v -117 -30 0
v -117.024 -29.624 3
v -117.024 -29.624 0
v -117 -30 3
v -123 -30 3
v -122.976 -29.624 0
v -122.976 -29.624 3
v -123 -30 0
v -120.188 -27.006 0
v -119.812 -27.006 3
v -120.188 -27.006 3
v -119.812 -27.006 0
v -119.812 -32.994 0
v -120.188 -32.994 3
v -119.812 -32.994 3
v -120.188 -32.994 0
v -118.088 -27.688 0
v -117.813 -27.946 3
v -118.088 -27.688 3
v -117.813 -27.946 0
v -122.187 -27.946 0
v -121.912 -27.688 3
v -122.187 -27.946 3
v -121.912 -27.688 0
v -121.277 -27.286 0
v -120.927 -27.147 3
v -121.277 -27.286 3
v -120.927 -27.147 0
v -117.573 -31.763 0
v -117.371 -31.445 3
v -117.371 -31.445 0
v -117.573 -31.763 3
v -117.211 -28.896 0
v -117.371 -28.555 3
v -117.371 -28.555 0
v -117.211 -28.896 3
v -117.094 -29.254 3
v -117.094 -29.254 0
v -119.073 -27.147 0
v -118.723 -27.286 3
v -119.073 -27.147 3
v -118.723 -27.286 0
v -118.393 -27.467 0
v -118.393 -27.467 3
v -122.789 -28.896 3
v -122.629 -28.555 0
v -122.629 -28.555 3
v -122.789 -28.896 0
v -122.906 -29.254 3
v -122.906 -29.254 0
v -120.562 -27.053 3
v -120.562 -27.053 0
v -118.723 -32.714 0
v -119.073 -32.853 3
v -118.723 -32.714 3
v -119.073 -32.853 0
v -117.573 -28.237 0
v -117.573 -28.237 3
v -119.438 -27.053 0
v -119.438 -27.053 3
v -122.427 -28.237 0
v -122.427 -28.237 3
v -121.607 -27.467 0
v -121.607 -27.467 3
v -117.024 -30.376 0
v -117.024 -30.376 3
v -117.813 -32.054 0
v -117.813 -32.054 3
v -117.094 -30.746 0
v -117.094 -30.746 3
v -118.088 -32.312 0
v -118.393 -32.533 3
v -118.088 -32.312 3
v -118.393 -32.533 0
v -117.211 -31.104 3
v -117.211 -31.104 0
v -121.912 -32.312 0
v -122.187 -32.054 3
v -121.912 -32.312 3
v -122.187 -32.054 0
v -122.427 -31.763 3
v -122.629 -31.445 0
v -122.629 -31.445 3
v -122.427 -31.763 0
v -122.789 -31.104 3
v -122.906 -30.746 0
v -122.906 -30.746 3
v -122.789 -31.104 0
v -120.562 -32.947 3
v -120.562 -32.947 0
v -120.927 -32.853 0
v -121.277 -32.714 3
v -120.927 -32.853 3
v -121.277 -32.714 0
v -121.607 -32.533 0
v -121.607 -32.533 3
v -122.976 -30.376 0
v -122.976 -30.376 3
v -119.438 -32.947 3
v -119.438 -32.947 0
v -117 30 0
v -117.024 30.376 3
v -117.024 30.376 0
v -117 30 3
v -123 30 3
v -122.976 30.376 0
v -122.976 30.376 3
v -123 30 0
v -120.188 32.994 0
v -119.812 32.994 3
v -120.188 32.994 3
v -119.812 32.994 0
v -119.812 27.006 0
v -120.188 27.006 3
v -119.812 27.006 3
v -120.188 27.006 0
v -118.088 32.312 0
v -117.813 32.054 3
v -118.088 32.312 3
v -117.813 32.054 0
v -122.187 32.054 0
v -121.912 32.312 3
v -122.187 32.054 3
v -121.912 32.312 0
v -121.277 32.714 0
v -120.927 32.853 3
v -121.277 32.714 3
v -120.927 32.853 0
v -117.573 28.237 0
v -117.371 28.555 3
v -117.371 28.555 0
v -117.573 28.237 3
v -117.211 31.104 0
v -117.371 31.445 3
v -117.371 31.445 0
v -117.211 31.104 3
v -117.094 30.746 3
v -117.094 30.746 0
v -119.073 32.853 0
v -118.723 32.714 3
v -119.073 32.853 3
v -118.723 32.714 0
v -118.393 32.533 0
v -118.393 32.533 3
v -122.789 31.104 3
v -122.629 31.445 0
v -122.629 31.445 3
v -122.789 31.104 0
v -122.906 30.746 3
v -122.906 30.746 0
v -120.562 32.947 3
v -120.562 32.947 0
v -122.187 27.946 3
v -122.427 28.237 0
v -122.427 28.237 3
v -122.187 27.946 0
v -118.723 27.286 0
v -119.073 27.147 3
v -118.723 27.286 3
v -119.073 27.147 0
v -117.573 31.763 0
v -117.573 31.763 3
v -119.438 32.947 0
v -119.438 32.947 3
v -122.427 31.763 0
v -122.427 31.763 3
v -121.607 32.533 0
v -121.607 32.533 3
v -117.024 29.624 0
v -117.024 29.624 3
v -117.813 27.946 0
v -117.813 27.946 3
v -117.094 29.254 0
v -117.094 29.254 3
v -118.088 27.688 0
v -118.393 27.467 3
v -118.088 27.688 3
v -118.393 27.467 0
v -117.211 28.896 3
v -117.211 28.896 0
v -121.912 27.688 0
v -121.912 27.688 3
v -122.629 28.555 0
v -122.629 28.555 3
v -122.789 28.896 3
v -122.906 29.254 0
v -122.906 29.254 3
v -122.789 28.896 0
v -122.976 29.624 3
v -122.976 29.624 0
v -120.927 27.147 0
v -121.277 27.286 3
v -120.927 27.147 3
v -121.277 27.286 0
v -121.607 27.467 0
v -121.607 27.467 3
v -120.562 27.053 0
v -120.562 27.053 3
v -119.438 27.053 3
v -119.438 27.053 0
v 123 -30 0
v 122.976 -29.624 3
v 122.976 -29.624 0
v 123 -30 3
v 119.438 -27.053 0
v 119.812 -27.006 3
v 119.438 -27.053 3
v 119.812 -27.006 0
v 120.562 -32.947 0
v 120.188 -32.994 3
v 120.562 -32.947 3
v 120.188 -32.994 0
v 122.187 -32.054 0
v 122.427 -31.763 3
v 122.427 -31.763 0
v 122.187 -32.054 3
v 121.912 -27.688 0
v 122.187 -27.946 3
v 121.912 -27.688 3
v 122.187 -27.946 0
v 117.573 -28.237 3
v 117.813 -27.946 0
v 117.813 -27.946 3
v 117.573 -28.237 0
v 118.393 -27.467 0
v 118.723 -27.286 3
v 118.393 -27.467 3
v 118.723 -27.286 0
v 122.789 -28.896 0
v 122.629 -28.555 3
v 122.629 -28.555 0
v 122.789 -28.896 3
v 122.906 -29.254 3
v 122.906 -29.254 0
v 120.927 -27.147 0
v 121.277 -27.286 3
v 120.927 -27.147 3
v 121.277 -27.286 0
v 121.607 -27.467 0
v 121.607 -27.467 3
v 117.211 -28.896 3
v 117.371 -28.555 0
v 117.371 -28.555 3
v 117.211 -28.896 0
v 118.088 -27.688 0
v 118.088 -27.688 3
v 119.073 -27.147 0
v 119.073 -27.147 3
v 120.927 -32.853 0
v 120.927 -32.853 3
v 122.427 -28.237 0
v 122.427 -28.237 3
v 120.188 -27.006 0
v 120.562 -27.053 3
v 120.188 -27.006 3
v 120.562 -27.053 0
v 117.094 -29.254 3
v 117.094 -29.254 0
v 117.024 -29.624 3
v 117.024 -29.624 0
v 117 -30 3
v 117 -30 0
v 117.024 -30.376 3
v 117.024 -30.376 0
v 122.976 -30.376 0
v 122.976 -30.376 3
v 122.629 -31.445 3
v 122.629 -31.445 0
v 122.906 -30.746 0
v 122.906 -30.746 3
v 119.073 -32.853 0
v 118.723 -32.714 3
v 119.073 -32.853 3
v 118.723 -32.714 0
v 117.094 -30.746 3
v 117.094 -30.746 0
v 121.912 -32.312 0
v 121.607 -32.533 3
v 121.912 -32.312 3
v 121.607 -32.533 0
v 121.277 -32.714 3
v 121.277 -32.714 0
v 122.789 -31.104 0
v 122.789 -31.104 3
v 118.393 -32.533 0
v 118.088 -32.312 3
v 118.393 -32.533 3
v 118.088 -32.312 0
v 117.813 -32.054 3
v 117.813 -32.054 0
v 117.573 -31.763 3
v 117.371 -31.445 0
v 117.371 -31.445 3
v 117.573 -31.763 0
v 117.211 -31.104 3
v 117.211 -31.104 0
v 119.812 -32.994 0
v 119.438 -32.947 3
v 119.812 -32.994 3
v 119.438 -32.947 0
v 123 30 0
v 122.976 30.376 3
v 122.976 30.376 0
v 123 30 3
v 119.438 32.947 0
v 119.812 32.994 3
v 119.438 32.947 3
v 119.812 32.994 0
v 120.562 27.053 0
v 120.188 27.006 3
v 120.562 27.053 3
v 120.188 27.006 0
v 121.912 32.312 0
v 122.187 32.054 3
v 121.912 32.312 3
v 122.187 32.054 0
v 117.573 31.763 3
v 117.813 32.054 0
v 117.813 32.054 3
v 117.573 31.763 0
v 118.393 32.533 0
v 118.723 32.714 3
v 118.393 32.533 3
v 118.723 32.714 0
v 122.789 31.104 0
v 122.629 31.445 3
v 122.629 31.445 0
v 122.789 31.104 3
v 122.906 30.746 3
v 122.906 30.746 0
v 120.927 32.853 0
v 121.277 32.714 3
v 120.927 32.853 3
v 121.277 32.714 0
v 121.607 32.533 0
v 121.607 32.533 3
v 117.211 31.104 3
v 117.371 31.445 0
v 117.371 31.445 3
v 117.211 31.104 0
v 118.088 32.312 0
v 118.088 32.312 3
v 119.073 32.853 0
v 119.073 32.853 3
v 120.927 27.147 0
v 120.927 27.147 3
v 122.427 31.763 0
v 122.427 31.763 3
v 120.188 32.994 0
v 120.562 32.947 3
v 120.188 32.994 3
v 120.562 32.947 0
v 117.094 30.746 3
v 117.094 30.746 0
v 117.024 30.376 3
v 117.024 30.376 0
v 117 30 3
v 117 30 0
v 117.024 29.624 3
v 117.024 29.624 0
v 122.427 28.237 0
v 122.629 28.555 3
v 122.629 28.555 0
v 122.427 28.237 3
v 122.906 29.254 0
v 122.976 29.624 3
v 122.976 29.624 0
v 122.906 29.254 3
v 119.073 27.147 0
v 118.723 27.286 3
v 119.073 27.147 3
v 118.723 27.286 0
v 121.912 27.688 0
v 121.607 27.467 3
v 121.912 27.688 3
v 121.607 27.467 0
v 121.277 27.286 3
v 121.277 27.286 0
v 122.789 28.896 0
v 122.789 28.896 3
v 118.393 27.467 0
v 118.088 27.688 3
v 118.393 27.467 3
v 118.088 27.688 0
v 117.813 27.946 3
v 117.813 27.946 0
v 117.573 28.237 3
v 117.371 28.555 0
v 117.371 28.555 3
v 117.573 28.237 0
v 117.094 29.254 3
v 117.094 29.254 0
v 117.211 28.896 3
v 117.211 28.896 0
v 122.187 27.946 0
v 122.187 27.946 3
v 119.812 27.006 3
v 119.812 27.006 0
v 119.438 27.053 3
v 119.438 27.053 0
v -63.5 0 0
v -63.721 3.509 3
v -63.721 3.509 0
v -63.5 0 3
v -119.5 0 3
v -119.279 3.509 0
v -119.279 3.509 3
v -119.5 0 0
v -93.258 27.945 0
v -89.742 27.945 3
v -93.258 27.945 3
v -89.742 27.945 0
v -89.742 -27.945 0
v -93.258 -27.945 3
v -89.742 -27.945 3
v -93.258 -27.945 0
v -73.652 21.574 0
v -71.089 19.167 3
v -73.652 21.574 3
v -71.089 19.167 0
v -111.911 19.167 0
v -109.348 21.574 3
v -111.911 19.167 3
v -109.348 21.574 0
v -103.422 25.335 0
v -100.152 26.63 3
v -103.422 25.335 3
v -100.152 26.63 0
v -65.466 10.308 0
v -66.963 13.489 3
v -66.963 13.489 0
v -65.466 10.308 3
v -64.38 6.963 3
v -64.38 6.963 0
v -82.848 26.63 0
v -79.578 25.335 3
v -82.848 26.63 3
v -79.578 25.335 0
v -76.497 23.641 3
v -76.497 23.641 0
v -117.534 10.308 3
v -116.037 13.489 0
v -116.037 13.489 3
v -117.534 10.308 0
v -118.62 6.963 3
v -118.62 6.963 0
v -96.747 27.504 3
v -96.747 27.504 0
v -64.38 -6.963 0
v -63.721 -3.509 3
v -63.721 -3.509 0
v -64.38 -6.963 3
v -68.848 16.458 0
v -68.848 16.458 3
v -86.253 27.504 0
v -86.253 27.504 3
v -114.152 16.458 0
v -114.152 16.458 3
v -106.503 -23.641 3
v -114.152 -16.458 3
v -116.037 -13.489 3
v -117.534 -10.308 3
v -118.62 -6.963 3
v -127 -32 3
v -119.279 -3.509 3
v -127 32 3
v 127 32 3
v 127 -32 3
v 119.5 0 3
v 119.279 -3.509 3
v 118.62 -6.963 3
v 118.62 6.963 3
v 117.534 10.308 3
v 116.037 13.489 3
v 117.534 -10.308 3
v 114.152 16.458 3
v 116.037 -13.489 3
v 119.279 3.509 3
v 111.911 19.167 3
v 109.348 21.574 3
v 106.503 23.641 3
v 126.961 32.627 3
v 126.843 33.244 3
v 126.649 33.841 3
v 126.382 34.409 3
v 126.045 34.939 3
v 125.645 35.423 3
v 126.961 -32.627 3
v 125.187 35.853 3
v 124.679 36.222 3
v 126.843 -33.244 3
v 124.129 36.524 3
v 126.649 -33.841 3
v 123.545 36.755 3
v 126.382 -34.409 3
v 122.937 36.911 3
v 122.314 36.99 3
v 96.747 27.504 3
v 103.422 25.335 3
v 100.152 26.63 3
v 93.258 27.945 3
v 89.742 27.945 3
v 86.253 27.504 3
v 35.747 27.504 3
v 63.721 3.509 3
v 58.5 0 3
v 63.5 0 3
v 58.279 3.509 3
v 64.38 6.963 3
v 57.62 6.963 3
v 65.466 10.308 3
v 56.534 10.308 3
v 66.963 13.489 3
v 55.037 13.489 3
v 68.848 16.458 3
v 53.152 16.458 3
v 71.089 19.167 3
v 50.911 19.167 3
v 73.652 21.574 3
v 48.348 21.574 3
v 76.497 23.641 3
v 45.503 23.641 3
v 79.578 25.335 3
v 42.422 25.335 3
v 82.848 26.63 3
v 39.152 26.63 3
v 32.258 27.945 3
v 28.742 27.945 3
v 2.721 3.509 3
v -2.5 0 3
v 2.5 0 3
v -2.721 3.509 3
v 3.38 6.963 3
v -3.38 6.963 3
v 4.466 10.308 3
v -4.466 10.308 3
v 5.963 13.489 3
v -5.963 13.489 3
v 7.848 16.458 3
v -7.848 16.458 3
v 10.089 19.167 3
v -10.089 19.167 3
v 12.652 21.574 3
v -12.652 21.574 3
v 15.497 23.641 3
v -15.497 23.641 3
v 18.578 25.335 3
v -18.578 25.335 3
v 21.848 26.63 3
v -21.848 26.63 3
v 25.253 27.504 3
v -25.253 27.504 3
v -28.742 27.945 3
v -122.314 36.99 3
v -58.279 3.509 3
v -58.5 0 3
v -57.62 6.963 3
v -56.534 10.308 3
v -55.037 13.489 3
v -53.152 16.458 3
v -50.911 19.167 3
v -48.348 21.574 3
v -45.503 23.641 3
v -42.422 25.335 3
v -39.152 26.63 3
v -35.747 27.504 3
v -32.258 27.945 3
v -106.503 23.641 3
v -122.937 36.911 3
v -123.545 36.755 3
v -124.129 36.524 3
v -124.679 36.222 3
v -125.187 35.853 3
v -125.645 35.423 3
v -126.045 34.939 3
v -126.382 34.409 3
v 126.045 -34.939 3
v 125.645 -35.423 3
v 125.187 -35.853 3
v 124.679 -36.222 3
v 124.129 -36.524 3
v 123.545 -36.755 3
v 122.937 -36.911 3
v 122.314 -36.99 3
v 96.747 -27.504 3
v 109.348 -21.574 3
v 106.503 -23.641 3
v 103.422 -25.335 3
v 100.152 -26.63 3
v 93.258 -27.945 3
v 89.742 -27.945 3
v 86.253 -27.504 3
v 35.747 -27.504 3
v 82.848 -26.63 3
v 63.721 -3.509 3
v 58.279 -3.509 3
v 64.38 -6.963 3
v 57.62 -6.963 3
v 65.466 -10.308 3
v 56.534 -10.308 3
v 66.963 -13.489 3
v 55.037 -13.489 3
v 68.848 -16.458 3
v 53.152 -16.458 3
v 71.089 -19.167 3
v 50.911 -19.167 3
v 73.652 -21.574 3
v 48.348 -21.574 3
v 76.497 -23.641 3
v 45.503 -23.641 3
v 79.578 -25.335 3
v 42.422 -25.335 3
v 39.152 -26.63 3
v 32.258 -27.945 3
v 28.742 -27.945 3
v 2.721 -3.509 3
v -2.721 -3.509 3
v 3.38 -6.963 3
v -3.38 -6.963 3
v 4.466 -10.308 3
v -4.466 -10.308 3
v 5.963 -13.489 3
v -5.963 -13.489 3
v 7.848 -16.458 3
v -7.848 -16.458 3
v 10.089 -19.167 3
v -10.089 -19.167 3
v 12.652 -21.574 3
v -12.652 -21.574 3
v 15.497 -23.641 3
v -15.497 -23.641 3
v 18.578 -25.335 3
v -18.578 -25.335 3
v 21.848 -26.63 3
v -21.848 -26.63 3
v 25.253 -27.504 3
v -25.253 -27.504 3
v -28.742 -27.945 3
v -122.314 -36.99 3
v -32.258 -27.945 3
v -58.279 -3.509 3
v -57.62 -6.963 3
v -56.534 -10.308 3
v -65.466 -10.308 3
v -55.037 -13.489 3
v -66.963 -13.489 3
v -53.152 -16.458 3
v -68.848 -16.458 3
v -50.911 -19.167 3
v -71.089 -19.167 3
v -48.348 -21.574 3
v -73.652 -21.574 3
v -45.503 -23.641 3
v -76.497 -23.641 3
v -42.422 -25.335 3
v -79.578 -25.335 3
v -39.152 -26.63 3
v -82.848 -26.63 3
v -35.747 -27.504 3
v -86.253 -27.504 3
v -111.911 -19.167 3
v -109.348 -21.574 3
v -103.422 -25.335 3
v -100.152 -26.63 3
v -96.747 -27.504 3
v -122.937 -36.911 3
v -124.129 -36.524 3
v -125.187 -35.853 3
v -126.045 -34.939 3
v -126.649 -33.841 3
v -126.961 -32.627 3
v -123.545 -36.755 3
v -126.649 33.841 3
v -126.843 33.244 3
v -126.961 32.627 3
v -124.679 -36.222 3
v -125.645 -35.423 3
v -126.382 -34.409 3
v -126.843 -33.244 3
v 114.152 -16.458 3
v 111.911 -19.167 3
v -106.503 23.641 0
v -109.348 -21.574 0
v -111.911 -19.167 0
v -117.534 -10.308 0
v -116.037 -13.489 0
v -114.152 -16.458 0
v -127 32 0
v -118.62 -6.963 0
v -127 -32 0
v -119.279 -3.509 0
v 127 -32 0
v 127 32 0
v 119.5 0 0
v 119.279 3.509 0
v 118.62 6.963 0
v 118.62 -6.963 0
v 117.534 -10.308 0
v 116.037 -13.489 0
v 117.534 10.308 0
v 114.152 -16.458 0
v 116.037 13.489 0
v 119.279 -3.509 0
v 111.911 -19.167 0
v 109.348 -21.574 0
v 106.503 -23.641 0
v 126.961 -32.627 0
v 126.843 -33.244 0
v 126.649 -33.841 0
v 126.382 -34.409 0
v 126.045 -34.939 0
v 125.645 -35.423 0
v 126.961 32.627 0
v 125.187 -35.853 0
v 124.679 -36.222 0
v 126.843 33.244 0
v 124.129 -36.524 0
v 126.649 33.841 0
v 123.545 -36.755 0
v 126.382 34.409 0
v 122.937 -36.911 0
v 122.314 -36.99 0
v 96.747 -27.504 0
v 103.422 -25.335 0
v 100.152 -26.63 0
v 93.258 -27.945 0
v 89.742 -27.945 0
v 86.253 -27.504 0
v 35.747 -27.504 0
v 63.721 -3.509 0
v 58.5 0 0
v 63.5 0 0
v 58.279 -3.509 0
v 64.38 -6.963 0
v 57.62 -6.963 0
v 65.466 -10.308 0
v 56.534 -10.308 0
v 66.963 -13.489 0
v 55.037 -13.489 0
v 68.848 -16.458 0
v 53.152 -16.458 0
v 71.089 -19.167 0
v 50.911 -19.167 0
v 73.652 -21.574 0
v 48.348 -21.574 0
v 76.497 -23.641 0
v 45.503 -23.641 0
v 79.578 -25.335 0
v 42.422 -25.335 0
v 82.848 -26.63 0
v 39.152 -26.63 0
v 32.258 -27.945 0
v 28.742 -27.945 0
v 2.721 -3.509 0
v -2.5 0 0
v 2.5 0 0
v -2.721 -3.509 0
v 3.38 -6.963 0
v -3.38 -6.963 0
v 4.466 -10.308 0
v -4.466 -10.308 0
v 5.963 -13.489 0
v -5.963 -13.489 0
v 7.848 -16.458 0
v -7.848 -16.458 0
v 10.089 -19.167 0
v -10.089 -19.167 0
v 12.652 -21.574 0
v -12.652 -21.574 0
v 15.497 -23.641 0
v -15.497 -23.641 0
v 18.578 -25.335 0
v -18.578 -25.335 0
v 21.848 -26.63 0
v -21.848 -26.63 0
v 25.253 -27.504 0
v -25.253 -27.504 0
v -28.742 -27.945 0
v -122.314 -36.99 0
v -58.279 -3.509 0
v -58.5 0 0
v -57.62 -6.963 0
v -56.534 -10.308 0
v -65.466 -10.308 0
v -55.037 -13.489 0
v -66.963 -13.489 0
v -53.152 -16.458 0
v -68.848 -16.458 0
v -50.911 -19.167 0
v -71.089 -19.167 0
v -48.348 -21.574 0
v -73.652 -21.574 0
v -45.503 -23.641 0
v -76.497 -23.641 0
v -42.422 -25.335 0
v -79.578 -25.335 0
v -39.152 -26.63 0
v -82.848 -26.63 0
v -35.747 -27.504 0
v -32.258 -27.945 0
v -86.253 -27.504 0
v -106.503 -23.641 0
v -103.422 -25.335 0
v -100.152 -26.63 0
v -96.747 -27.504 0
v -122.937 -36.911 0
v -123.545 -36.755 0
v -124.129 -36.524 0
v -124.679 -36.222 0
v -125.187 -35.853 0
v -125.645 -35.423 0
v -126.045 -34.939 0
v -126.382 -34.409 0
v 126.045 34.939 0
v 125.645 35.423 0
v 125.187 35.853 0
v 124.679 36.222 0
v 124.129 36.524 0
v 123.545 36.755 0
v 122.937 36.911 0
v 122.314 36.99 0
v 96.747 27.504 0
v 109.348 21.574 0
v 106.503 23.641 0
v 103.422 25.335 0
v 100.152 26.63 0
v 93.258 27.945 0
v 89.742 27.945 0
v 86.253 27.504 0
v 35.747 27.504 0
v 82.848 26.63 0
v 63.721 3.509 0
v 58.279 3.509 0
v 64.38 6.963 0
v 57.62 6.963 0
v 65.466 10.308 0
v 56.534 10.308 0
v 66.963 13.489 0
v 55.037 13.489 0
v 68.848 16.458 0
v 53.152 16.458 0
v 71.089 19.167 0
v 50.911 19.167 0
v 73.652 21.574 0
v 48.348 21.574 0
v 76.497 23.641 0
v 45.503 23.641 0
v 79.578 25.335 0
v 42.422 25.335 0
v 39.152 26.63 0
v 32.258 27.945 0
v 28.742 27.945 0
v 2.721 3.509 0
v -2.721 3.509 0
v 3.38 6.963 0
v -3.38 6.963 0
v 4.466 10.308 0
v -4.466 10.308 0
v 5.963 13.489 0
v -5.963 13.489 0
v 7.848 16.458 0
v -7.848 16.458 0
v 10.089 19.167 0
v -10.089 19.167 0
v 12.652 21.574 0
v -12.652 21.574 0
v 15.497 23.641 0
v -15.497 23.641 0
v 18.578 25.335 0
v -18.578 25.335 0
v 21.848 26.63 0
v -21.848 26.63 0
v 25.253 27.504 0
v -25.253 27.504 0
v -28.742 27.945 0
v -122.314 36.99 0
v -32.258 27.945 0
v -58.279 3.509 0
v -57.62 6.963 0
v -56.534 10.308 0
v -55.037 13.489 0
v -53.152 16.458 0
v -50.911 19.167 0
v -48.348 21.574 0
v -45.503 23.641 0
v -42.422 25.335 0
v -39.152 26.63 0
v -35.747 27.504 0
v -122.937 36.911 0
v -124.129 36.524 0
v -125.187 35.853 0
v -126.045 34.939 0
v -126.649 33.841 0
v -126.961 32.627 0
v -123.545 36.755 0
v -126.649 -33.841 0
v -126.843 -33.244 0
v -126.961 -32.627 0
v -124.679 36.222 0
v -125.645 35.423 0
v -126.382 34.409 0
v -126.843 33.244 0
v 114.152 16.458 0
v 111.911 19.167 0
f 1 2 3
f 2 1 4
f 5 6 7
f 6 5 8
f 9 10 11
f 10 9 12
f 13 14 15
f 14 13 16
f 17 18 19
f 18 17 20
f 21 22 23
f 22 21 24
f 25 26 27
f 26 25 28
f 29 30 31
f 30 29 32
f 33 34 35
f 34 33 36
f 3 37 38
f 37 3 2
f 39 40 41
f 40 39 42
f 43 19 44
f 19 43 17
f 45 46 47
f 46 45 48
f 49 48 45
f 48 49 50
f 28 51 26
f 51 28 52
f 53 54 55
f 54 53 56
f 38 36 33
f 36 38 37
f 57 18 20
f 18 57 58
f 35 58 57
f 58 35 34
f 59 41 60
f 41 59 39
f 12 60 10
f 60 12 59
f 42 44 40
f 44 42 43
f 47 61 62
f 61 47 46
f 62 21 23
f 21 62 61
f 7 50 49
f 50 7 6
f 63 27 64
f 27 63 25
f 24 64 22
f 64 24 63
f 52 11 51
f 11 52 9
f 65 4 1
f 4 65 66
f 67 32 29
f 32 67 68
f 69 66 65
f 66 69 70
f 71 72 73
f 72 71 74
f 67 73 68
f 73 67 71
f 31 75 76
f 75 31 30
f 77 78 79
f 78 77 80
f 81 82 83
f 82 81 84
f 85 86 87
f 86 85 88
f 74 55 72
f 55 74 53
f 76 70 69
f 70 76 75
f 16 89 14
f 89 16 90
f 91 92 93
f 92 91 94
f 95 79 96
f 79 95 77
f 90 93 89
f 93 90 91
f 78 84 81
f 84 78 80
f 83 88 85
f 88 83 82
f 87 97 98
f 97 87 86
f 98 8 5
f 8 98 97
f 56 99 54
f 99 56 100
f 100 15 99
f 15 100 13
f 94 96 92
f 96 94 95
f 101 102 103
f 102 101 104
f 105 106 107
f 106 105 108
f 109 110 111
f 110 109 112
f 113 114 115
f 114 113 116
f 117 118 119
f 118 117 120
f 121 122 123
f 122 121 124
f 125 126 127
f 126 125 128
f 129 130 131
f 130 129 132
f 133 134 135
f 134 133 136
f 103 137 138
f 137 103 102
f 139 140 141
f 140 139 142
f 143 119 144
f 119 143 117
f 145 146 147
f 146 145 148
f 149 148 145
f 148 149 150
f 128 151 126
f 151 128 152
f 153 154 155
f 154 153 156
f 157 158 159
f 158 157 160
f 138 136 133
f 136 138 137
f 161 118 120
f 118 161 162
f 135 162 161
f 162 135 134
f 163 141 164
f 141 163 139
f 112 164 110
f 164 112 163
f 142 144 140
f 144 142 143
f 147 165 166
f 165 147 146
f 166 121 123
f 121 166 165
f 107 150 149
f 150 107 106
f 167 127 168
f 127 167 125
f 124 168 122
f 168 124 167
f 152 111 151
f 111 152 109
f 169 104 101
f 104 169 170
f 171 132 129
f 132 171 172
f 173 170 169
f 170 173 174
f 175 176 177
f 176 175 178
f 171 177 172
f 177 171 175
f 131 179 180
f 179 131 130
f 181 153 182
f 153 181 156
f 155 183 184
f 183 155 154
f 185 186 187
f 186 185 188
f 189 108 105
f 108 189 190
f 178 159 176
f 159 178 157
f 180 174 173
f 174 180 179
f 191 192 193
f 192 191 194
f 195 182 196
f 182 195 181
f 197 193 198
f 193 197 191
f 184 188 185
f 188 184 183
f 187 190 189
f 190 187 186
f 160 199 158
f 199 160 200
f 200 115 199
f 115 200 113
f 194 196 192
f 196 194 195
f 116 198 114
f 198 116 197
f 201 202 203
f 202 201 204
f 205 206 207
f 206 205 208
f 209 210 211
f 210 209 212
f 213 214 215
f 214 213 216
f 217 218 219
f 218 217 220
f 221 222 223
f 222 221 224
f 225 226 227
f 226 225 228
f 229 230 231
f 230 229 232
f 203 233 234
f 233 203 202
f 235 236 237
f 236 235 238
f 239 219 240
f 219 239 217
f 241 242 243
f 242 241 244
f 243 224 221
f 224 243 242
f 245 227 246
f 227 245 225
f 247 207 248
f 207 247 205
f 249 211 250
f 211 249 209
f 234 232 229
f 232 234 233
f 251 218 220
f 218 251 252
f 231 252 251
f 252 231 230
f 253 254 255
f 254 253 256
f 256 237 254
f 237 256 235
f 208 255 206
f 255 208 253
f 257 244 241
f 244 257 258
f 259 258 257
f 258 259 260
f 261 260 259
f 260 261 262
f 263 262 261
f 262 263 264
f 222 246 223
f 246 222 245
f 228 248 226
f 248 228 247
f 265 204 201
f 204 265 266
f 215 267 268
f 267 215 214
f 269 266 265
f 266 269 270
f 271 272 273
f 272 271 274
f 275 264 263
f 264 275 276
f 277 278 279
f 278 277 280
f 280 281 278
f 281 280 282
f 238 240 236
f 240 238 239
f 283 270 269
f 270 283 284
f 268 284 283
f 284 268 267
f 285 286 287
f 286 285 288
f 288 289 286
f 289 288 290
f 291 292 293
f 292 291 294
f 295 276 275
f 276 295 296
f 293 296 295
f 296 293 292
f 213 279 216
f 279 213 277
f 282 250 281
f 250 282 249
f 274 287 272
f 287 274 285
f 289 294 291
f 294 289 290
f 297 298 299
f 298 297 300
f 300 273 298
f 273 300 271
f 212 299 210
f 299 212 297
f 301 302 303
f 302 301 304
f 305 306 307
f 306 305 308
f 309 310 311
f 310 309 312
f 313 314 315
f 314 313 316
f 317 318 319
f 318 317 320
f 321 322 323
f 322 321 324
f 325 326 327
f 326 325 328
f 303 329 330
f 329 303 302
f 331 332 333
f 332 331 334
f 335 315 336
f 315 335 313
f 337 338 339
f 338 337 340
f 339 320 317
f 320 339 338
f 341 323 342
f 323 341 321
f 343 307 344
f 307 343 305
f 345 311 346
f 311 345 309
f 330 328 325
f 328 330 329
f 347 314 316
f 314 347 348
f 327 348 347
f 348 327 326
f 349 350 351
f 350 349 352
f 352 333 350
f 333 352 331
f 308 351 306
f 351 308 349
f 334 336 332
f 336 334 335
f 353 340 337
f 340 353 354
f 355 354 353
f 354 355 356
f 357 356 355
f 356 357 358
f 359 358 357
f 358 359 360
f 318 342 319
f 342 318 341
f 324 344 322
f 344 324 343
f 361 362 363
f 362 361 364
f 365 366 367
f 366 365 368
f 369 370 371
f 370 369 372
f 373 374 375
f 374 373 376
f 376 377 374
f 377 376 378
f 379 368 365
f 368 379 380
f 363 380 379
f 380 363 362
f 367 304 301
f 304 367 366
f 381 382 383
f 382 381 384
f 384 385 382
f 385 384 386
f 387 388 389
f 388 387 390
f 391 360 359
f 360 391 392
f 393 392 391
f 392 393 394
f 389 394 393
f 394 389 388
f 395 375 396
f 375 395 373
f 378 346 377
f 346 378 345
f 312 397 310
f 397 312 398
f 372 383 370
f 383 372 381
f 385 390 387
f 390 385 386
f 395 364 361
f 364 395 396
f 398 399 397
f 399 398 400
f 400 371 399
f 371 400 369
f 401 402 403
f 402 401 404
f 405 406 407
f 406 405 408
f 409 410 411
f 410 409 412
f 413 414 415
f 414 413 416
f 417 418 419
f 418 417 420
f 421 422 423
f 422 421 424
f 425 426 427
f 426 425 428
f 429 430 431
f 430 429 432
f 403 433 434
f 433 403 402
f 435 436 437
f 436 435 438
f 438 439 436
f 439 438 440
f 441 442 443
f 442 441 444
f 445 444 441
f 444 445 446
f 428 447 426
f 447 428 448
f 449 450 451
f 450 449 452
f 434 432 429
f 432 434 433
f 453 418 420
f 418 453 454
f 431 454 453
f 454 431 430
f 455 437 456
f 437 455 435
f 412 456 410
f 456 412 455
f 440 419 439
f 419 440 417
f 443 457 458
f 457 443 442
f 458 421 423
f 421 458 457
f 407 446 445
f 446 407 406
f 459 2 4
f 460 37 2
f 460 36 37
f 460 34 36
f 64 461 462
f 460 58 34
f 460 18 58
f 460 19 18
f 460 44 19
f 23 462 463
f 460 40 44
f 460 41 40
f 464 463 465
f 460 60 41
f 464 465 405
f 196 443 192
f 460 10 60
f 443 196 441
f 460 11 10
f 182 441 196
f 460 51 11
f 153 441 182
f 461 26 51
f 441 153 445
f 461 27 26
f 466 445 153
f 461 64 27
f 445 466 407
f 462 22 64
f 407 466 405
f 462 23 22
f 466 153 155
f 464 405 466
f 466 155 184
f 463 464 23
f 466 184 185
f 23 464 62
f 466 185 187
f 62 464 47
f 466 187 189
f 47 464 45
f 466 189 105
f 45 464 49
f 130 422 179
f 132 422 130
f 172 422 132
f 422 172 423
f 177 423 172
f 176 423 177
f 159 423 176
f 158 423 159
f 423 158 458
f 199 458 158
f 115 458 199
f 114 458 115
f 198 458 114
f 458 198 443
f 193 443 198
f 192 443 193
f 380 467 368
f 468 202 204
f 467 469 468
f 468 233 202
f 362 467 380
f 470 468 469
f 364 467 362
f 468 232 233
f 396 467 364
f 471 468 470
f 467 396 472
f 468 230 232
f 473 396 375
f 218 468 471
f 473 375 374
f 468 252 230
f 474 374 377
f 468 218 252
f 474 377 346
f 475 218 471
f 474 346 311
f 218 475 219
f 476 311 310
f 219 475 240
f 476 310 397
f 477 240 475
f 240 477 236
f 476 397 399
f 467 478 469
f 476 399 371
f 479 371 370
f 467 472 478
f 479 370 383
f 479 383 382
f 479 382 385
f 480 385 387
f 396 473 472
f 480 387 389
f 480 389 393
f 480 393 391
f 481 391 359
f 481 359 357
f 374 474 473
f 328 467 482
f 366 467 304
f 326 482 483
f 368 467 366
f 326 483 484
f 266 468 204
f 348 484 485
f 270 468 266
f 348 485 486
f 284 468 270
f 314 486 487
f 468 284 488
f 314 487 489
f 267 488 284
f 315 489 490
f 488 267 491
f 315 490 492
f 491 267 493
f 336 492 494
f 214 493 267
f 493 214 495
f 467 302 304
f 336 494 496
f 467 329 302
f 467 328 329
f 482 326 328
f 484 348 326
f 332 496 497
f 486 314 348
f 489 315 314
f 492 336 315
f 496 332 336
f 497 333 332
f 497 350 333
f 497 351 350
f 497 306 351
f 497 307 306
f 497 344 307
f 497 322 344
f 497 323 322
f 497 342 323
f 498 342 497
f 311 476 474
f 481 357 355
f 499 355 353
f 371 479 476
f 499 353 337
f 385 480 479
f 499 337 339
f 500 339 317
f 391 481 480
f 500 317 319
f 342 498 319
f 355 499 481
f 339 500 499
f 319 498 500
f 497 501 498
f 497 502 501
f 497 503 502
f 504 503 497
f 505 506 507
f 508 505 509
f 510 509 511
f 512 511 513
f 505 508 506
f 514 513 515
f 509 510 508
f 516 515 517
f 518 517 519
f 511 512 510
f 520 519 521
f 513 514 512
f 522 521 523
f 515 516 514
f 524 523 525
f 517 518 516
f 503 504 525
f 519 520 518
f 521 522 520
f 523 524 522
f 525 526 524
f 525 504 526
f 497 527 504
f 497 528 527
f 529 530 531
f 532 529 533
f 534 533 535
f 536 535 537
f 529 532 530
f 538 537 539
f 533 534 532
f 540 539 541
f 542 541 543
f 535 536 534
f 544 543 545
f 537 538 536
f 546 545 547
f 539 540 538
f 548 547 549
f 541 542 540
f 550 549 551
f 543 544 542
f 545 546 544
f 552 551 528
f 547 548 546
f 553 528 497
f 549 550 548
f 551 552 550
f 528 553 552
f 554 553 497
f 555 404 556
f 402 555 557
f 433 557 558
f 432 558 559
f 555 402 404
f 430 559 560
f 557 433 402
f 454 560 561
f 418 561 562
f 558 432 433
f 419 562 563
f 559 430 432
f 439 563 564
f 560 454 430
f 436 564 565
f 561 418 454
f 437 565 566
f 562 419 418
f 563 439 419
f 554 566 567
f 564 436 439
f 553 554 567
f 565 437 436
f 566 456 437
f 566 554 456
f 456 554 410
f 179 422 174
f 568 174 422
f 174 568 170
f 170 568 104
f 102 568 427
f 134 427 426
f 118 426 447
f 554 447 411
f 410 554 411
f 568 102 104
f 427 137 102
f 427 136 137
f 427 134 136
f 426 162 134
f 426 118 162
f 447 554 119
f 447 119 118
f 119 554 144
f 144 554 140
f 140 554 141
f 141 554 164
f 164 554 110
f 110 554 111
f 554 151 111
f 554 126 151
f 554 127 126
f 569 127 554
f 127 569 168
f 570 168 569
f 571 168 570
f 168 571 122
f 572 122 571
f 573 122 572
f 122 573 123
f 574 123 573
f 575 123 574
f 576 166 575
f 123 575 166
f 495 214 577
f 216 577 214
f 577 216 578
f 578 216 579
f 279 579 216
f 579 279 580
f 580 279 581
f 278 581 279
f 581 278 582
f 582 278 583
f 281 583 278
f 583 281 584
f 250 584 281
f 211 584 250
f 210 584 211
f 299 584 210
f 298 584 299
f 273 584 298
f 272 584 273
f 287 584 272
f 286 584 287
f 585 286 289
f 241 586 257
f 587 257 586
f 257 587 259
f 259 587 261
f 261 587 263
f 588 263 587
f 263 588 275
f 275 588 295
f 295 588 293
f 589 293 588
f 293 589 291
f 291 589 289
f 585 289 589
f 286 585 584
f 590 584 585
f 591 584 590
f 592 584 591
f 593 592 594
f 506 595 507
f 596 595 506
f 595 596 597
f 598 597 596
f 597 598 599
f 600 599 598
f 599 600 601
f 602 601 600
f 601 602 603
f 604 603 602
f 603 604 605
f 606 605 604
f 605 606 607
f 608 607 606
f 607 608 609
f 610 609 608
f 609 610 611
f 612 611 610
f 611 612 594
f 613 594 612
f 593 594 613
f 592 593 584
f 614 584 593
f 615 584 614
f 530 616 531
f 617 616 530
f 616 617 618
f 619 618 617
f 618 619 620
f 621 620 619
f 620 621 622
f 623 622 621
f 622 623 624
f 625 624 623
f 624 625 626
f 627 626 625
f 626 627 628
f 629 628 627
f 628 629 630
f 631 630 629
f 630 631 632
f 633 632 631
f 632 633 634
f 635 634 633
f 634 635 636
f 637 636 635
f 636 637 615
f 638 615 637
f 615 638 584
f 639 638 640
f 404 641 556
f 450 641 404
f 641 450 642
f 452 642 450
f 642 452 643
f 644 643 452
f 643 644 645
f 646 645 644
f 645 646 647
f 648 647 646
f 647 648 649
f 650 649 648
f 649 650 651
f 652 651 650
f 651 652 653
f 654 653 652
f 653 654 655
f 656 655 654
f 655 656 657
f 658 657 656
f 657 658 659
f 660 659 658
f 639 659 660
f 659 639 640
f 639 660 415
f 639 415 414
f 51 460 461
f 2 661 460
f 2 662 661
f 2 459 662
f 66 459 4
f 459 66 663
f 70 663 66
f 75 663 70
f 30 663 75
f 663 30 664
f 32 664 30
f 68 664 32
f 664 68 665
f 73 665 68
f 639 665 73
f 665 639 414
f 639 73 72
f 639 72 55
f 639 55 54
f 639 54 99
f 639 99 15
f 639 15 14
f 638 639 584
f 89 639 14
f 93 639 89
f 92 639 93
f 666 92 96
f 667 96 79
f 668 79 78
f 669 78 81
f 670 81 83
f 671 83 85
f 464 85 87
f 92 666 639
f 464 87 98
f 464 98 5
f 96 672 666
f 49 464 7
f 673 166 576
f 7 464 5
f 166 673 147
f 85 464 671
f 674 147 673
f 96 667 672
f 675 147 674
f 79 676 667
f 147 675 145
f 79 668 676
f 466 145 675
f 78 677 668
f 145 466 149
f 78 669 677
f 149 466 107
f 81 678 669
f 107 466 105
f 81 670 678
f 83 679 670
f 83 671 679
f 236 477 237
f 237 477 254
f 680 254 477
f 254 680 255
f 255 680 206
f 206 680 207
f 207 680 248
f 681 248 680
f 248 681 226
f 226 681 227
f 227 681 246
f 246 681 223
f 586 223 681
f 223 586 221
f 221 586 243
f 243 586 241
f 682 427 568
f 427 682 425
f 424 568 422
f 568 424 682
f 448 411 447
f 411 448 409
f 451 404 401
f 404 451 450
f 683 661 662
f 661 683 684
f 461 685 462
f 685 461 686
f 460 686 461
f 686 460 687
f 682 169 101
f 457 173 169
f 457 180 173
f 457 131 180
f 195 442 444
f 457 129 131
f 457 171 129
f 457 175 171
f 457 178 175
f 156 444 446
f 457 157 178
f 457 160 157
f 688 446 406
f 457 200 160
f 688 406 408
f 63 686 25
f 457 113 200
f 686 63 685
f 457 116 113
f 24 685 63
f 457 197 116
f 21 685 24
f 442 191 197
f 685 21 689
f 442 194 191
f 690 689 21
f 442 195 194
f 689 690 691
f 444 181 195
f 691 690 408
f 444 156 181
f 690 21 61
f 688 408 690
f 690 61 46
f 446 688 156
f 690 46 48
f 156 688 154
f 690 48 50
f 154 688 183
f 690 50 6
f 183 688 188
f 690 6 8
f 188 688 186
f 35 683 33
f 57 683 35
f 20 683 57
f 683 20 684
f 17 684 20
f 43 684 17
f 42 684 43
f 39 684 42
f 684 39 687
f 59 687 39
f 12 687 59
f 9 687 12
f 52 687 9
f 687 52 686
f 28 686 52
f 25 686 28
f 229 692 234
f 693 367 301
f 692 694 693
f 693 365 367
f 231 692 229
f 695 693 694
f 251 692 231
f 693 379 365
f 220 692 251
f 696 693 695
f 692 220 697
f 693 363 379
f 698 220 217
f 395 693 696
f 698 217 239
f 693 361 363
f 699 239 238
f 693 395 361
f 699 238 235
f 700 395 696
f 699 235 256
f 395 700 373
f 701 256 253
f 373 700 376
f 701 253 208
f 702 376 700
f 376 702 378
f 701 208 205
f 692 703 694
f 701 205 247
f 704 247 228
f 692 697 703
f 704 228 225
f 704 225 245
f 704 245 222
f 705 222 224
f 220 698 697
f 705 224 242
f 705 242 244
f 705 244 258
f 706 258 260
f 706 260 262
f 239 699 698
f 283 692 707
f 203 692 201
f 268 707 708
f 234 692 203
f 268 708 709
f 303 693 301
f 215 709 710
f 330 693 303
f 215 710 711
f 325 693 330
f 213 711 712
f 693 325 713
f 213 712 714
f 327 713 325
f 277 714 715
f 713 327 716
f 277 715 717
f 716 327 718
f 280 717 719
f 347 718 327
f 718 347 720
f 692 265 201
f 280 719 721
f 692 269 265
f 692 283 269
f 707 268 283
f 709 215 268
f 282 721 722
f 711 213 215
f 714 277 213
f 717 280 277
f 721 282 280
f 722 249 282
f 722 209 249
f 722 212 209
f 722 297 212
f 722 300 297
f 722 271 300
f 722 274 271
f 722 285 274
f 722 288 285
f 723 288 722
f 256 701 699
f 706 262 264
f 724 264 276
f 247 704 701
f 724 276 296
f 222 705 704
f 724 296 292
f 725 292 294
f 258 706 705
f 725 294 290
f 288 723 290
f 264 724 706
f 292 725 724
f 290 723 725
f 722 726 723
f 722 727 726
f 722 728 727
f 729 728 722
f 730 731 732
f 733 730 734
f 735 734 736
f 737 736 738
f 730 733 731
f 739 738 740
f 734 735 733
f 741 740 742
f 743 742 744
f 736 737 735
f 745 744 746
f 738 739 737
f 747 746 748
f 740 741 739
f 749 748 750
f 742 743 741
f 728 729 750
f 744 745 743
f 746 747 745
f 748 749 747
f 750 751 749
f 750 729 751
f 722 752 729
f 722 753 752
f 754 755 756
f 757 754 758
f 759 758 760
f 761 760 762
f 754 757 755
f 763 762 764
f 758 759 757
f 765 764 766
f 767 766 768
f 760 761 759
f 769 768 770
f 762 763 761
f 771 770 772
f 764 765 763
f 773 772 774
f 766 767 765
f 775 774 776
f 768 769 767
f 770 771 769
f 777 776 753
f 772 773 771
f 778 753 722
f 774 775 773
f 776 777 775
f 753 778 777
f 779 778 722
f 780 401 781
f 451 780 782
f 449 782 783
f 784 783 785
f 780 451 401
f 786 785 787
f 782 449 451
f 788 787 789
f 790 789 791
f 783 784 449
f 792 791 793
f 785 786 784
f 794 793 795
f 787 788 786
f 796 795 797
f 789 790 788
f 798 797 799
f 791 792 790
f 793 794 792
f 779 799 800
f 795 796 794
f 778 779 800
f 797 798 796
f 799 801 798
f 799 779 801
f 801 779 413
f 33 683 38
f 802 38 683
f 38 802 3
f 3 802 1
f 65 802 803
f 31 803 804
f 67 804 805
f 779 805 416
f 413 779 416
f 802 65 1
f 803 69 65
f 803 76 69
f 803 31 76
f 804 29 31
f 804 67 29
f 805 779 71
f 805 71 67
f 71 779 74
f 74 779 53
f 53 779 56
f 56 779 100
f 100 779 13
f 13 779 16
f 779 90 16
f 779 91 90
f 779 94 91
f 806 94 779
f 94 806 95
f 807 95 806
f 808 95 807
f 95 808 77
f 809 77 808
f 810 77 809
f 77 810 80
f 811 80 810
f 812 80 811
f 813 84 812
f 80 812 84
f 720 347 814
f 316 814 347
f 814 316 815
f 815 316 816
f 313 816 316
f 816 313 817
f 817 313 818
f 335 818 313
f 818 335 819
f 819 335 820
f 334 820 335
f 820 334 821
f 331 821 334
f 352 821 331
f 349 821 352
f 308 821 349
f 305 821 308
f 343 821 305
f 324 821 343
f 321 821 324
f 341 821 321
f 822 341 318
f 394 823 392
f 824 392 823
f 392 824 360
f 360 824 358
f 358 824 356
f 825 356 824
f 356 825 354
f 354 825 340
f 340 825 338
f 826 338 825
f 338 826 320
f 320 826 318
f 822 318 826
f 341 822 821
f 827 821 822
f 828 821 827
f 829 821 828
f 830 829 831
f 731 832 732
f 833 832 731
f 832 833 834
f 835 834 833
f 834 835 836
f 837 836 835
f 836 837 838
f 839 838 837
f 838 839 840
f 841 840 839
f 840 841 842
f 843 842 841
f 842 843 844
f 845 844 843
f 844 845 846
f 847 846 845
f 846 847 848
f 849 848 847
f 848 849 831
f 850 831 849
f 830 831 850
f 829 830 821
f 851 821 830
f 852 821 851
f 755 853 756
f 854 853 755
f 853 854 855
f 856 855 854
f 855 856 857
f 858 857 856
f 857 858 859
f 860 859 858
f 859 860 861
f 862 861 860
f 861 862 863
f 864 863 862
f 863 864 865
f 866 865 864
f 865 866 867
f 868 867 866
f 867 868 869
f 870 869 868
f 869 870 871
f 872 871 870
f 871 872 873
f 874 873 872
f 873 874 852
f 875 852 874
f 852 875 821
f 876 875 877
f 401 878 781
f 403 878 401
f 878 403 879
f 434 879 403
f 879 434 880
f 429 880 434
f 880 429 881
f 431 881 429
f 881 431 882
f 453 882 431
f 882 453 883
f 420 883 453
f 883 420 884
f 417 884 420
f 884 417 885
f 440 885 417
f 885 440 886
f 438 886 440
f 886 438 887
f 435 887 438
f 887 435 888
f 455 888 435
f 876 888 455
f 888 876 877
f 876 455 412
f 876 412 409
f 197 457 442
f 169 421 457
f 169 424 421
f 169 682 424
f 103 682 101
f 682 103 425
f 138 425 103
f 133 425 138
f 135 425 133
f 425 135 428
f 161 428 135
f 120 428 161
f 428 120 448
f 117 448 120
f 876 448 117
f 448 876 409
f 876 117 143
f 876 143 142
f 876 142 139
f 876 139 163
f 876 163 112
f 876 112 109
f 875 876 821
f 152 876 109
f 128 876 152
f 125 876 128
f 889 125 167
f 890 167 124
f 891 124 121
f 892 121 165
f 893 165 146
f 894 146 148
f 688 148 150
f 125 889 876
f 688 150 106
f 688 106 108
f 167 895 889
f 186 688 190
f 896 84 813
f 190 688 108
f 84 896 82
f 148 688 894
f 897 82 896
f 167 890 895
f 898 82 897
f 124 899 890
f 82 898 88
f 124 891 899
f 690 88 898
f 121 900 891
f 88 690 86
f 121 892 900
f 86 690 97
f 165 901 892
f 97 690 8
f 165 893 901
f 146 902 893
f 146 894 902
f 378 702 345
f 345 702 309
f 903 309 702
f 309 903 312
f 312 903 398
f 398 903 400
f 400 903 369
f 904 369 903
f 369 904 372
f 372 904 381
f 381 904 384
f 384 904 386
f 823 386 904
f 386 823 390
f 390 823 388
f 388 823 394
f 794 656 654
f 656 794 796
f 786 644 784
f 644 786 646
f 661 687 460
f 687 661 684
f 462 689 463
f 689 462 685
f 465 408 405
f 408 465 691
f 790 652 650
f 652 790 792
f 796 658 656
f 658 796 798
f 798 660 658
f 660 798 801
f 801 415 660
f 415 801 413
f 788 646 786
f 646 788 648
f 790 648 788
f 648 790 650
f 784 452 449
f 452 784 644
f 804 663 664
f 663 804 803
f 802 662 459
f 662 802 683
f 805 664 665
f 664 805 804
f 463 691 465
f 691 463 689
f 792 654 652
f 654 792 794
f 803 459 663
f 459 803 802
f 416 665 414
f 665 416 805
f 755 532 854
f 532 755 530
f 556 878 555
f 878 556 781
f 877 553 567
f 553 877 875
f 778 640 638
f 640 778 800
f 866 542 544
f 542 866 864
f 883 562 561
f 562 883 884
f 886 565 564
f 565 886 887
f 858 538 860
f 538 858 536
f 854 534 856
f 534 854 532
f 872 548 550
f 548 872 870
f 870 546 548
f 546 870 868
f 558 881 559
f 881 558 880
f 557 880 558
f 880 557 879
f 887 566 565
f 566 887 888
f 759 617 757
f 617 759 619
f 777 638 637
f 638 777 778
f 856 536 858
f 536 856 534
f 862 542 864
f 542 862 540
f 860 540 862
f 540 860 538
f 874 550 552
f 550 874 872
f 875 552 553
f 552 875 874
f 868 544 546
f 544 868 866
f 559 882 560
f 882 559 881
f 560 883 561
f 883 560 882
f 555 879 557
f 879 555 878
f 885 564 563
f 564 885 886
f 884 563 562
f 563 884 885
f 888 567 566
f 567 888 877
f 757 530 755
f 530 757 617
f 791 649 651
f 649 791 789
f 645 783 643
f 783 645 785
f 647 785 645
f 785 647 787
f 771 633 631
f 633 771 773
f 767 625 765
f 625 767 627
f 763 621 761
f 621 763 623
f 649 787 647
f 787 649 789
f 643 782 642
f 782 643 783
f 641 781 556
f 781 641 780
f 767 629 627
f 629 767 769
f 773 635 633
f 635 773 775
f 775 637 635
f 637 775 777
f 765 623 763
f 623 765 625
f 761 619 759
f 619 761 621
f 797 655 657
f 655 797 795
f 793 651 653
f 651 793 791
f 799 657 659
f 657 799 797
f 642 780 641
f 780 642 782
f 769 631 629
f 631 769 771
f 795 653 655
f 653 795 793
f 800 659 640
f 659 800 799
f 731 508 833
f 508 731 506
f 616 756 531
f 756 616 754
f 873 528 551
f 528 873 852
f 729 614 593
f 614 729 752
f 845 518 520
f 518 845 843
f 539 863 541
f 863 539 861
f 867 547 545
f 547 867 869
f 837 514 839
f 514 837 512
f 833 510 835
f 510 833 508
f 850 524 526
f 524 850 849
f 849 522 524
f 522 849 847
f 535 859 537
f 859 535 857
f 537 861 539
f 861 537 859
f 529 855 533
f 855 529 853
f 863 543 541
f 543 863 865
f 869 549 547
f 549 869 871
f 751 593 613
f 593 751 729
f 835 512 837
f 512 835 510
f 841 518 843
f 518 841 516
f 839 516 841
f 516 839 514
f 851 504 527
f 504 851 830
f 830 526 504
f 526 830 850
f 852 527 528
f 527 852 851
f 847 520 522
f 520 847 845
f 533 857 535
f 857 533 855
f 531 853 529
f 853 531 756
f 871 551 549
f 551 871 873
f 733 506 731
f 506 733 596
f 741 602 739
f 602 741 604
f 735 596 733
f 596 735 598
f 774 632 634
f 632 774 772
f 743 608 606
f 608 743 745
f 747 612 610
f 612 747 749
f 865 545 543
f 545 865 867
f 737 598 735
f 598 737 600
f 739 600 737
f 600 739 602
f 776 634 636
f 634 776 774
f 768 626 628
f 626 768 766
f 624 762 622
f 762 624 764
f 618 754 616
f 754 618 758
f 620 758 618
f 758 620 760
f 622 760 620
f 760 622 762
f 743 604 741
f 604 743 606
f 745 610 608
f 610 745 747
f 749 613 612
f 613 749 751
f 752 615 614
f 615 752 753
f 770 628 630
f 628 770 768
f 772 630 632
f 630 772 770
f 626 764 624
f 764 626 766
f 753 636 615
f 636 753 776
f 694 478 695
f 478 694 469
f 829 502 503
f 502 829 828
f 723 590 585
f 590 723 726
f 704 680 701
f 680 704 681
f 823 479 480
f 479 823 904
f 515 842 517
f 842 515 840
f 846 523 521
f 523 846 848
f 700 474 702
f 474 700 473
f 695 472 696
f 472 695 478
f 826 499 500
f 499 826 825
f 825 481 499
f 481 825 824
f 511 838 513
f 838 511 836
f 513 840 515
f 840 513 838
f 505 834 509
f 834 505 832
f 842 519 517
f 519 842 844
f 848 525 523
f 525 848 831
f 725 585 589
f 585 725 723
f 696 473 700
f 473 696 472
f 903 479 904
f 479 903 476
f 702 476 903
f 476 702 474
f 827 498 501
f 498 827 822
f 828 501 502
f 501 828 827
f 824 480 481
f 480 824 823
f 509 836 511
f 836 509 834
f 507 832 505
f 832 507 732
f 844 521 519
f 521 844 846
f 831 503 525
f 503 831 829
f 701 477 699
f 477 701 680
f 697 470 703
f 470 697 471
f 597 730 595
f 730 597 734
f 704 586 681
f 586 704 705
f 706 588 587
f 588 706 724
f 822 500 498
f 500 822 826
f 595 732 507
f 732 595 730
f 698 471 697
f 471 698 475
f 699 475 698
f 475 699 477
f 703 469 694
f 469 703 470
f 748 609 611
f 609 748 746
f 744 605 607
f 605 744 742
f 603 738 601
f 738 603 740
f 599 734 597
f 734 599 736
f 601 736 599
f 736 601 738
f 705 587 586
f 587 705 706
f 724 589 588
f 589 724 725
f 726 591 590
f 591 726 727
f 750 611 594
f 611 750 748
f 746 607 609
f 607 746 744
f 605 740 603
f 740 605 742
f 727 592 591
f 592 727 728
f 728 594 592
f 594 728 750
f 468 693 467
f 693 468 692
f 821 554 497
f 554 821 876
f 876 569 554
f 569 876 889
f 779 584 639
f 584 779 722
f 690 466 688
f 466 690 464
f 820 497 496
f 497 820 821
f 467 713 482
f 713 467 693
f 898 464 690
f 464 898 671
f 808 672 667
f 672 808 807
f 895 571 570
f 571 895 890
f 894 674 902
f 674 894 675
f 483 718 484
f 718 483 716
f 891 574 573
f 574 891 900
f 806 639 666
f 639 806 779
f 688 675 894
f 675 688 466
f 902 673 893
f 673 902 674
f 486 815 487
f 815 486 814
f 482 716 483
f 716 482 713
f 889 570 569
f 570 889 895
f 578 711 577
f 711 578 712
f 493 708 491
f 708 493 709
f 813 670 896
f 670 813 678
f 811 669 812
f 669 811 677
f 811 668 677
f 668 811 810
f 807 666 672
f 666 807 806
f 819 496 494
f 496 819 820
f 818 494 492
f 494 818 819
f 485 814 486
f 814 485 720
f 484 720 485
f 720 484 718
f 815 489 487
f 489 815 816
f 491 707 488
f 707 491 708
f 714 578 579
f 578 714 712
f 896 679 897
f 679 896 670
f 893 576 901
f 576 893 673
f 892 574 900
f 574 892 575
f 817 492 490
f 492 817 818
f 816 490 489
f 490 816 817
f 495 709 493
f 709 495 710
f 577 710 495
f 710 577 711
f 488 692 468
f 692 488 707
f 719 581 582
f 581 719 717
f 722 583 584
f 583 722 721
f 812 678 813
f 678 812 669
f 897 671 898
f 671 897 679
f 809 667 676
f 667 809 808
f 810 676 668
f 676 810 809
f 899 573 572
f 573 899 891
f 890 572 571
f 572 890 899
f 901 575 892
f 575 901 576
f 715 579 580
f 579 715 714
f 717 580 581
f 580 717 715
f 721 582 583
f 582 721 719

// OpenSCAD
$fn = 50;


difference() {
	union() {
		hull() {
			translate(v = [-122.0000000000, 32.0000000000, 0]) {
				cylinder(h = 3, r = 5);
			}
			translate(v = [122.0000000000, 32.0000000000, 0]) {
				cylinder(h = 3, r = 5);
			}
			translate(v = [-122.0000000000, -32.0000000000, 0]) {
				cylinder(h = 3, r = 5);
			}
			translate(v = [122.0000000000, -32.0000000000, 0]) {
				cylinder(h = 3, r = 5);
			}
		}
	}
	union() {
		#translate(v = [-120.0000000000, -30.0000000000, -100.0000000000]) {
			cylinder(h = 200, r = 3.0000000000);
		}
		#translate(v = [-120.0000000000, 30.0000000000, -100.0000000000]) {
			cylinder(h = 200, r = 3.0000000000);
		}
		#translate(v = [120.0000000000, -30.0000000000, -100.0000000000]) {
			cylinder(h = 200, r = 3.0000000000);
		}
		#translate(v = [120.0000000000, 30.0000000000, -100.0000000000]) {
			cylinder(h = 200, r = 3.0000000000);
		}
		#translate(v = [-91.5000000000, 0, 0]) {
			cylinder(h = 3, r = 28.0000000000);
		}
		#translate(v = [-30.5000000000, 0, 0]) {
			cylinder(h = 3, r = 28.0000000000);
		}
		#translate(v = [30.5000000000, 0, 0]) {
			cylinder(h = 3, r = 28.0000000000);
		}
		#translate(v = [91.5000000000, 0, 0]) {
			cylinder(h = 3, r = 28.0000000000);
		}
	}
}
